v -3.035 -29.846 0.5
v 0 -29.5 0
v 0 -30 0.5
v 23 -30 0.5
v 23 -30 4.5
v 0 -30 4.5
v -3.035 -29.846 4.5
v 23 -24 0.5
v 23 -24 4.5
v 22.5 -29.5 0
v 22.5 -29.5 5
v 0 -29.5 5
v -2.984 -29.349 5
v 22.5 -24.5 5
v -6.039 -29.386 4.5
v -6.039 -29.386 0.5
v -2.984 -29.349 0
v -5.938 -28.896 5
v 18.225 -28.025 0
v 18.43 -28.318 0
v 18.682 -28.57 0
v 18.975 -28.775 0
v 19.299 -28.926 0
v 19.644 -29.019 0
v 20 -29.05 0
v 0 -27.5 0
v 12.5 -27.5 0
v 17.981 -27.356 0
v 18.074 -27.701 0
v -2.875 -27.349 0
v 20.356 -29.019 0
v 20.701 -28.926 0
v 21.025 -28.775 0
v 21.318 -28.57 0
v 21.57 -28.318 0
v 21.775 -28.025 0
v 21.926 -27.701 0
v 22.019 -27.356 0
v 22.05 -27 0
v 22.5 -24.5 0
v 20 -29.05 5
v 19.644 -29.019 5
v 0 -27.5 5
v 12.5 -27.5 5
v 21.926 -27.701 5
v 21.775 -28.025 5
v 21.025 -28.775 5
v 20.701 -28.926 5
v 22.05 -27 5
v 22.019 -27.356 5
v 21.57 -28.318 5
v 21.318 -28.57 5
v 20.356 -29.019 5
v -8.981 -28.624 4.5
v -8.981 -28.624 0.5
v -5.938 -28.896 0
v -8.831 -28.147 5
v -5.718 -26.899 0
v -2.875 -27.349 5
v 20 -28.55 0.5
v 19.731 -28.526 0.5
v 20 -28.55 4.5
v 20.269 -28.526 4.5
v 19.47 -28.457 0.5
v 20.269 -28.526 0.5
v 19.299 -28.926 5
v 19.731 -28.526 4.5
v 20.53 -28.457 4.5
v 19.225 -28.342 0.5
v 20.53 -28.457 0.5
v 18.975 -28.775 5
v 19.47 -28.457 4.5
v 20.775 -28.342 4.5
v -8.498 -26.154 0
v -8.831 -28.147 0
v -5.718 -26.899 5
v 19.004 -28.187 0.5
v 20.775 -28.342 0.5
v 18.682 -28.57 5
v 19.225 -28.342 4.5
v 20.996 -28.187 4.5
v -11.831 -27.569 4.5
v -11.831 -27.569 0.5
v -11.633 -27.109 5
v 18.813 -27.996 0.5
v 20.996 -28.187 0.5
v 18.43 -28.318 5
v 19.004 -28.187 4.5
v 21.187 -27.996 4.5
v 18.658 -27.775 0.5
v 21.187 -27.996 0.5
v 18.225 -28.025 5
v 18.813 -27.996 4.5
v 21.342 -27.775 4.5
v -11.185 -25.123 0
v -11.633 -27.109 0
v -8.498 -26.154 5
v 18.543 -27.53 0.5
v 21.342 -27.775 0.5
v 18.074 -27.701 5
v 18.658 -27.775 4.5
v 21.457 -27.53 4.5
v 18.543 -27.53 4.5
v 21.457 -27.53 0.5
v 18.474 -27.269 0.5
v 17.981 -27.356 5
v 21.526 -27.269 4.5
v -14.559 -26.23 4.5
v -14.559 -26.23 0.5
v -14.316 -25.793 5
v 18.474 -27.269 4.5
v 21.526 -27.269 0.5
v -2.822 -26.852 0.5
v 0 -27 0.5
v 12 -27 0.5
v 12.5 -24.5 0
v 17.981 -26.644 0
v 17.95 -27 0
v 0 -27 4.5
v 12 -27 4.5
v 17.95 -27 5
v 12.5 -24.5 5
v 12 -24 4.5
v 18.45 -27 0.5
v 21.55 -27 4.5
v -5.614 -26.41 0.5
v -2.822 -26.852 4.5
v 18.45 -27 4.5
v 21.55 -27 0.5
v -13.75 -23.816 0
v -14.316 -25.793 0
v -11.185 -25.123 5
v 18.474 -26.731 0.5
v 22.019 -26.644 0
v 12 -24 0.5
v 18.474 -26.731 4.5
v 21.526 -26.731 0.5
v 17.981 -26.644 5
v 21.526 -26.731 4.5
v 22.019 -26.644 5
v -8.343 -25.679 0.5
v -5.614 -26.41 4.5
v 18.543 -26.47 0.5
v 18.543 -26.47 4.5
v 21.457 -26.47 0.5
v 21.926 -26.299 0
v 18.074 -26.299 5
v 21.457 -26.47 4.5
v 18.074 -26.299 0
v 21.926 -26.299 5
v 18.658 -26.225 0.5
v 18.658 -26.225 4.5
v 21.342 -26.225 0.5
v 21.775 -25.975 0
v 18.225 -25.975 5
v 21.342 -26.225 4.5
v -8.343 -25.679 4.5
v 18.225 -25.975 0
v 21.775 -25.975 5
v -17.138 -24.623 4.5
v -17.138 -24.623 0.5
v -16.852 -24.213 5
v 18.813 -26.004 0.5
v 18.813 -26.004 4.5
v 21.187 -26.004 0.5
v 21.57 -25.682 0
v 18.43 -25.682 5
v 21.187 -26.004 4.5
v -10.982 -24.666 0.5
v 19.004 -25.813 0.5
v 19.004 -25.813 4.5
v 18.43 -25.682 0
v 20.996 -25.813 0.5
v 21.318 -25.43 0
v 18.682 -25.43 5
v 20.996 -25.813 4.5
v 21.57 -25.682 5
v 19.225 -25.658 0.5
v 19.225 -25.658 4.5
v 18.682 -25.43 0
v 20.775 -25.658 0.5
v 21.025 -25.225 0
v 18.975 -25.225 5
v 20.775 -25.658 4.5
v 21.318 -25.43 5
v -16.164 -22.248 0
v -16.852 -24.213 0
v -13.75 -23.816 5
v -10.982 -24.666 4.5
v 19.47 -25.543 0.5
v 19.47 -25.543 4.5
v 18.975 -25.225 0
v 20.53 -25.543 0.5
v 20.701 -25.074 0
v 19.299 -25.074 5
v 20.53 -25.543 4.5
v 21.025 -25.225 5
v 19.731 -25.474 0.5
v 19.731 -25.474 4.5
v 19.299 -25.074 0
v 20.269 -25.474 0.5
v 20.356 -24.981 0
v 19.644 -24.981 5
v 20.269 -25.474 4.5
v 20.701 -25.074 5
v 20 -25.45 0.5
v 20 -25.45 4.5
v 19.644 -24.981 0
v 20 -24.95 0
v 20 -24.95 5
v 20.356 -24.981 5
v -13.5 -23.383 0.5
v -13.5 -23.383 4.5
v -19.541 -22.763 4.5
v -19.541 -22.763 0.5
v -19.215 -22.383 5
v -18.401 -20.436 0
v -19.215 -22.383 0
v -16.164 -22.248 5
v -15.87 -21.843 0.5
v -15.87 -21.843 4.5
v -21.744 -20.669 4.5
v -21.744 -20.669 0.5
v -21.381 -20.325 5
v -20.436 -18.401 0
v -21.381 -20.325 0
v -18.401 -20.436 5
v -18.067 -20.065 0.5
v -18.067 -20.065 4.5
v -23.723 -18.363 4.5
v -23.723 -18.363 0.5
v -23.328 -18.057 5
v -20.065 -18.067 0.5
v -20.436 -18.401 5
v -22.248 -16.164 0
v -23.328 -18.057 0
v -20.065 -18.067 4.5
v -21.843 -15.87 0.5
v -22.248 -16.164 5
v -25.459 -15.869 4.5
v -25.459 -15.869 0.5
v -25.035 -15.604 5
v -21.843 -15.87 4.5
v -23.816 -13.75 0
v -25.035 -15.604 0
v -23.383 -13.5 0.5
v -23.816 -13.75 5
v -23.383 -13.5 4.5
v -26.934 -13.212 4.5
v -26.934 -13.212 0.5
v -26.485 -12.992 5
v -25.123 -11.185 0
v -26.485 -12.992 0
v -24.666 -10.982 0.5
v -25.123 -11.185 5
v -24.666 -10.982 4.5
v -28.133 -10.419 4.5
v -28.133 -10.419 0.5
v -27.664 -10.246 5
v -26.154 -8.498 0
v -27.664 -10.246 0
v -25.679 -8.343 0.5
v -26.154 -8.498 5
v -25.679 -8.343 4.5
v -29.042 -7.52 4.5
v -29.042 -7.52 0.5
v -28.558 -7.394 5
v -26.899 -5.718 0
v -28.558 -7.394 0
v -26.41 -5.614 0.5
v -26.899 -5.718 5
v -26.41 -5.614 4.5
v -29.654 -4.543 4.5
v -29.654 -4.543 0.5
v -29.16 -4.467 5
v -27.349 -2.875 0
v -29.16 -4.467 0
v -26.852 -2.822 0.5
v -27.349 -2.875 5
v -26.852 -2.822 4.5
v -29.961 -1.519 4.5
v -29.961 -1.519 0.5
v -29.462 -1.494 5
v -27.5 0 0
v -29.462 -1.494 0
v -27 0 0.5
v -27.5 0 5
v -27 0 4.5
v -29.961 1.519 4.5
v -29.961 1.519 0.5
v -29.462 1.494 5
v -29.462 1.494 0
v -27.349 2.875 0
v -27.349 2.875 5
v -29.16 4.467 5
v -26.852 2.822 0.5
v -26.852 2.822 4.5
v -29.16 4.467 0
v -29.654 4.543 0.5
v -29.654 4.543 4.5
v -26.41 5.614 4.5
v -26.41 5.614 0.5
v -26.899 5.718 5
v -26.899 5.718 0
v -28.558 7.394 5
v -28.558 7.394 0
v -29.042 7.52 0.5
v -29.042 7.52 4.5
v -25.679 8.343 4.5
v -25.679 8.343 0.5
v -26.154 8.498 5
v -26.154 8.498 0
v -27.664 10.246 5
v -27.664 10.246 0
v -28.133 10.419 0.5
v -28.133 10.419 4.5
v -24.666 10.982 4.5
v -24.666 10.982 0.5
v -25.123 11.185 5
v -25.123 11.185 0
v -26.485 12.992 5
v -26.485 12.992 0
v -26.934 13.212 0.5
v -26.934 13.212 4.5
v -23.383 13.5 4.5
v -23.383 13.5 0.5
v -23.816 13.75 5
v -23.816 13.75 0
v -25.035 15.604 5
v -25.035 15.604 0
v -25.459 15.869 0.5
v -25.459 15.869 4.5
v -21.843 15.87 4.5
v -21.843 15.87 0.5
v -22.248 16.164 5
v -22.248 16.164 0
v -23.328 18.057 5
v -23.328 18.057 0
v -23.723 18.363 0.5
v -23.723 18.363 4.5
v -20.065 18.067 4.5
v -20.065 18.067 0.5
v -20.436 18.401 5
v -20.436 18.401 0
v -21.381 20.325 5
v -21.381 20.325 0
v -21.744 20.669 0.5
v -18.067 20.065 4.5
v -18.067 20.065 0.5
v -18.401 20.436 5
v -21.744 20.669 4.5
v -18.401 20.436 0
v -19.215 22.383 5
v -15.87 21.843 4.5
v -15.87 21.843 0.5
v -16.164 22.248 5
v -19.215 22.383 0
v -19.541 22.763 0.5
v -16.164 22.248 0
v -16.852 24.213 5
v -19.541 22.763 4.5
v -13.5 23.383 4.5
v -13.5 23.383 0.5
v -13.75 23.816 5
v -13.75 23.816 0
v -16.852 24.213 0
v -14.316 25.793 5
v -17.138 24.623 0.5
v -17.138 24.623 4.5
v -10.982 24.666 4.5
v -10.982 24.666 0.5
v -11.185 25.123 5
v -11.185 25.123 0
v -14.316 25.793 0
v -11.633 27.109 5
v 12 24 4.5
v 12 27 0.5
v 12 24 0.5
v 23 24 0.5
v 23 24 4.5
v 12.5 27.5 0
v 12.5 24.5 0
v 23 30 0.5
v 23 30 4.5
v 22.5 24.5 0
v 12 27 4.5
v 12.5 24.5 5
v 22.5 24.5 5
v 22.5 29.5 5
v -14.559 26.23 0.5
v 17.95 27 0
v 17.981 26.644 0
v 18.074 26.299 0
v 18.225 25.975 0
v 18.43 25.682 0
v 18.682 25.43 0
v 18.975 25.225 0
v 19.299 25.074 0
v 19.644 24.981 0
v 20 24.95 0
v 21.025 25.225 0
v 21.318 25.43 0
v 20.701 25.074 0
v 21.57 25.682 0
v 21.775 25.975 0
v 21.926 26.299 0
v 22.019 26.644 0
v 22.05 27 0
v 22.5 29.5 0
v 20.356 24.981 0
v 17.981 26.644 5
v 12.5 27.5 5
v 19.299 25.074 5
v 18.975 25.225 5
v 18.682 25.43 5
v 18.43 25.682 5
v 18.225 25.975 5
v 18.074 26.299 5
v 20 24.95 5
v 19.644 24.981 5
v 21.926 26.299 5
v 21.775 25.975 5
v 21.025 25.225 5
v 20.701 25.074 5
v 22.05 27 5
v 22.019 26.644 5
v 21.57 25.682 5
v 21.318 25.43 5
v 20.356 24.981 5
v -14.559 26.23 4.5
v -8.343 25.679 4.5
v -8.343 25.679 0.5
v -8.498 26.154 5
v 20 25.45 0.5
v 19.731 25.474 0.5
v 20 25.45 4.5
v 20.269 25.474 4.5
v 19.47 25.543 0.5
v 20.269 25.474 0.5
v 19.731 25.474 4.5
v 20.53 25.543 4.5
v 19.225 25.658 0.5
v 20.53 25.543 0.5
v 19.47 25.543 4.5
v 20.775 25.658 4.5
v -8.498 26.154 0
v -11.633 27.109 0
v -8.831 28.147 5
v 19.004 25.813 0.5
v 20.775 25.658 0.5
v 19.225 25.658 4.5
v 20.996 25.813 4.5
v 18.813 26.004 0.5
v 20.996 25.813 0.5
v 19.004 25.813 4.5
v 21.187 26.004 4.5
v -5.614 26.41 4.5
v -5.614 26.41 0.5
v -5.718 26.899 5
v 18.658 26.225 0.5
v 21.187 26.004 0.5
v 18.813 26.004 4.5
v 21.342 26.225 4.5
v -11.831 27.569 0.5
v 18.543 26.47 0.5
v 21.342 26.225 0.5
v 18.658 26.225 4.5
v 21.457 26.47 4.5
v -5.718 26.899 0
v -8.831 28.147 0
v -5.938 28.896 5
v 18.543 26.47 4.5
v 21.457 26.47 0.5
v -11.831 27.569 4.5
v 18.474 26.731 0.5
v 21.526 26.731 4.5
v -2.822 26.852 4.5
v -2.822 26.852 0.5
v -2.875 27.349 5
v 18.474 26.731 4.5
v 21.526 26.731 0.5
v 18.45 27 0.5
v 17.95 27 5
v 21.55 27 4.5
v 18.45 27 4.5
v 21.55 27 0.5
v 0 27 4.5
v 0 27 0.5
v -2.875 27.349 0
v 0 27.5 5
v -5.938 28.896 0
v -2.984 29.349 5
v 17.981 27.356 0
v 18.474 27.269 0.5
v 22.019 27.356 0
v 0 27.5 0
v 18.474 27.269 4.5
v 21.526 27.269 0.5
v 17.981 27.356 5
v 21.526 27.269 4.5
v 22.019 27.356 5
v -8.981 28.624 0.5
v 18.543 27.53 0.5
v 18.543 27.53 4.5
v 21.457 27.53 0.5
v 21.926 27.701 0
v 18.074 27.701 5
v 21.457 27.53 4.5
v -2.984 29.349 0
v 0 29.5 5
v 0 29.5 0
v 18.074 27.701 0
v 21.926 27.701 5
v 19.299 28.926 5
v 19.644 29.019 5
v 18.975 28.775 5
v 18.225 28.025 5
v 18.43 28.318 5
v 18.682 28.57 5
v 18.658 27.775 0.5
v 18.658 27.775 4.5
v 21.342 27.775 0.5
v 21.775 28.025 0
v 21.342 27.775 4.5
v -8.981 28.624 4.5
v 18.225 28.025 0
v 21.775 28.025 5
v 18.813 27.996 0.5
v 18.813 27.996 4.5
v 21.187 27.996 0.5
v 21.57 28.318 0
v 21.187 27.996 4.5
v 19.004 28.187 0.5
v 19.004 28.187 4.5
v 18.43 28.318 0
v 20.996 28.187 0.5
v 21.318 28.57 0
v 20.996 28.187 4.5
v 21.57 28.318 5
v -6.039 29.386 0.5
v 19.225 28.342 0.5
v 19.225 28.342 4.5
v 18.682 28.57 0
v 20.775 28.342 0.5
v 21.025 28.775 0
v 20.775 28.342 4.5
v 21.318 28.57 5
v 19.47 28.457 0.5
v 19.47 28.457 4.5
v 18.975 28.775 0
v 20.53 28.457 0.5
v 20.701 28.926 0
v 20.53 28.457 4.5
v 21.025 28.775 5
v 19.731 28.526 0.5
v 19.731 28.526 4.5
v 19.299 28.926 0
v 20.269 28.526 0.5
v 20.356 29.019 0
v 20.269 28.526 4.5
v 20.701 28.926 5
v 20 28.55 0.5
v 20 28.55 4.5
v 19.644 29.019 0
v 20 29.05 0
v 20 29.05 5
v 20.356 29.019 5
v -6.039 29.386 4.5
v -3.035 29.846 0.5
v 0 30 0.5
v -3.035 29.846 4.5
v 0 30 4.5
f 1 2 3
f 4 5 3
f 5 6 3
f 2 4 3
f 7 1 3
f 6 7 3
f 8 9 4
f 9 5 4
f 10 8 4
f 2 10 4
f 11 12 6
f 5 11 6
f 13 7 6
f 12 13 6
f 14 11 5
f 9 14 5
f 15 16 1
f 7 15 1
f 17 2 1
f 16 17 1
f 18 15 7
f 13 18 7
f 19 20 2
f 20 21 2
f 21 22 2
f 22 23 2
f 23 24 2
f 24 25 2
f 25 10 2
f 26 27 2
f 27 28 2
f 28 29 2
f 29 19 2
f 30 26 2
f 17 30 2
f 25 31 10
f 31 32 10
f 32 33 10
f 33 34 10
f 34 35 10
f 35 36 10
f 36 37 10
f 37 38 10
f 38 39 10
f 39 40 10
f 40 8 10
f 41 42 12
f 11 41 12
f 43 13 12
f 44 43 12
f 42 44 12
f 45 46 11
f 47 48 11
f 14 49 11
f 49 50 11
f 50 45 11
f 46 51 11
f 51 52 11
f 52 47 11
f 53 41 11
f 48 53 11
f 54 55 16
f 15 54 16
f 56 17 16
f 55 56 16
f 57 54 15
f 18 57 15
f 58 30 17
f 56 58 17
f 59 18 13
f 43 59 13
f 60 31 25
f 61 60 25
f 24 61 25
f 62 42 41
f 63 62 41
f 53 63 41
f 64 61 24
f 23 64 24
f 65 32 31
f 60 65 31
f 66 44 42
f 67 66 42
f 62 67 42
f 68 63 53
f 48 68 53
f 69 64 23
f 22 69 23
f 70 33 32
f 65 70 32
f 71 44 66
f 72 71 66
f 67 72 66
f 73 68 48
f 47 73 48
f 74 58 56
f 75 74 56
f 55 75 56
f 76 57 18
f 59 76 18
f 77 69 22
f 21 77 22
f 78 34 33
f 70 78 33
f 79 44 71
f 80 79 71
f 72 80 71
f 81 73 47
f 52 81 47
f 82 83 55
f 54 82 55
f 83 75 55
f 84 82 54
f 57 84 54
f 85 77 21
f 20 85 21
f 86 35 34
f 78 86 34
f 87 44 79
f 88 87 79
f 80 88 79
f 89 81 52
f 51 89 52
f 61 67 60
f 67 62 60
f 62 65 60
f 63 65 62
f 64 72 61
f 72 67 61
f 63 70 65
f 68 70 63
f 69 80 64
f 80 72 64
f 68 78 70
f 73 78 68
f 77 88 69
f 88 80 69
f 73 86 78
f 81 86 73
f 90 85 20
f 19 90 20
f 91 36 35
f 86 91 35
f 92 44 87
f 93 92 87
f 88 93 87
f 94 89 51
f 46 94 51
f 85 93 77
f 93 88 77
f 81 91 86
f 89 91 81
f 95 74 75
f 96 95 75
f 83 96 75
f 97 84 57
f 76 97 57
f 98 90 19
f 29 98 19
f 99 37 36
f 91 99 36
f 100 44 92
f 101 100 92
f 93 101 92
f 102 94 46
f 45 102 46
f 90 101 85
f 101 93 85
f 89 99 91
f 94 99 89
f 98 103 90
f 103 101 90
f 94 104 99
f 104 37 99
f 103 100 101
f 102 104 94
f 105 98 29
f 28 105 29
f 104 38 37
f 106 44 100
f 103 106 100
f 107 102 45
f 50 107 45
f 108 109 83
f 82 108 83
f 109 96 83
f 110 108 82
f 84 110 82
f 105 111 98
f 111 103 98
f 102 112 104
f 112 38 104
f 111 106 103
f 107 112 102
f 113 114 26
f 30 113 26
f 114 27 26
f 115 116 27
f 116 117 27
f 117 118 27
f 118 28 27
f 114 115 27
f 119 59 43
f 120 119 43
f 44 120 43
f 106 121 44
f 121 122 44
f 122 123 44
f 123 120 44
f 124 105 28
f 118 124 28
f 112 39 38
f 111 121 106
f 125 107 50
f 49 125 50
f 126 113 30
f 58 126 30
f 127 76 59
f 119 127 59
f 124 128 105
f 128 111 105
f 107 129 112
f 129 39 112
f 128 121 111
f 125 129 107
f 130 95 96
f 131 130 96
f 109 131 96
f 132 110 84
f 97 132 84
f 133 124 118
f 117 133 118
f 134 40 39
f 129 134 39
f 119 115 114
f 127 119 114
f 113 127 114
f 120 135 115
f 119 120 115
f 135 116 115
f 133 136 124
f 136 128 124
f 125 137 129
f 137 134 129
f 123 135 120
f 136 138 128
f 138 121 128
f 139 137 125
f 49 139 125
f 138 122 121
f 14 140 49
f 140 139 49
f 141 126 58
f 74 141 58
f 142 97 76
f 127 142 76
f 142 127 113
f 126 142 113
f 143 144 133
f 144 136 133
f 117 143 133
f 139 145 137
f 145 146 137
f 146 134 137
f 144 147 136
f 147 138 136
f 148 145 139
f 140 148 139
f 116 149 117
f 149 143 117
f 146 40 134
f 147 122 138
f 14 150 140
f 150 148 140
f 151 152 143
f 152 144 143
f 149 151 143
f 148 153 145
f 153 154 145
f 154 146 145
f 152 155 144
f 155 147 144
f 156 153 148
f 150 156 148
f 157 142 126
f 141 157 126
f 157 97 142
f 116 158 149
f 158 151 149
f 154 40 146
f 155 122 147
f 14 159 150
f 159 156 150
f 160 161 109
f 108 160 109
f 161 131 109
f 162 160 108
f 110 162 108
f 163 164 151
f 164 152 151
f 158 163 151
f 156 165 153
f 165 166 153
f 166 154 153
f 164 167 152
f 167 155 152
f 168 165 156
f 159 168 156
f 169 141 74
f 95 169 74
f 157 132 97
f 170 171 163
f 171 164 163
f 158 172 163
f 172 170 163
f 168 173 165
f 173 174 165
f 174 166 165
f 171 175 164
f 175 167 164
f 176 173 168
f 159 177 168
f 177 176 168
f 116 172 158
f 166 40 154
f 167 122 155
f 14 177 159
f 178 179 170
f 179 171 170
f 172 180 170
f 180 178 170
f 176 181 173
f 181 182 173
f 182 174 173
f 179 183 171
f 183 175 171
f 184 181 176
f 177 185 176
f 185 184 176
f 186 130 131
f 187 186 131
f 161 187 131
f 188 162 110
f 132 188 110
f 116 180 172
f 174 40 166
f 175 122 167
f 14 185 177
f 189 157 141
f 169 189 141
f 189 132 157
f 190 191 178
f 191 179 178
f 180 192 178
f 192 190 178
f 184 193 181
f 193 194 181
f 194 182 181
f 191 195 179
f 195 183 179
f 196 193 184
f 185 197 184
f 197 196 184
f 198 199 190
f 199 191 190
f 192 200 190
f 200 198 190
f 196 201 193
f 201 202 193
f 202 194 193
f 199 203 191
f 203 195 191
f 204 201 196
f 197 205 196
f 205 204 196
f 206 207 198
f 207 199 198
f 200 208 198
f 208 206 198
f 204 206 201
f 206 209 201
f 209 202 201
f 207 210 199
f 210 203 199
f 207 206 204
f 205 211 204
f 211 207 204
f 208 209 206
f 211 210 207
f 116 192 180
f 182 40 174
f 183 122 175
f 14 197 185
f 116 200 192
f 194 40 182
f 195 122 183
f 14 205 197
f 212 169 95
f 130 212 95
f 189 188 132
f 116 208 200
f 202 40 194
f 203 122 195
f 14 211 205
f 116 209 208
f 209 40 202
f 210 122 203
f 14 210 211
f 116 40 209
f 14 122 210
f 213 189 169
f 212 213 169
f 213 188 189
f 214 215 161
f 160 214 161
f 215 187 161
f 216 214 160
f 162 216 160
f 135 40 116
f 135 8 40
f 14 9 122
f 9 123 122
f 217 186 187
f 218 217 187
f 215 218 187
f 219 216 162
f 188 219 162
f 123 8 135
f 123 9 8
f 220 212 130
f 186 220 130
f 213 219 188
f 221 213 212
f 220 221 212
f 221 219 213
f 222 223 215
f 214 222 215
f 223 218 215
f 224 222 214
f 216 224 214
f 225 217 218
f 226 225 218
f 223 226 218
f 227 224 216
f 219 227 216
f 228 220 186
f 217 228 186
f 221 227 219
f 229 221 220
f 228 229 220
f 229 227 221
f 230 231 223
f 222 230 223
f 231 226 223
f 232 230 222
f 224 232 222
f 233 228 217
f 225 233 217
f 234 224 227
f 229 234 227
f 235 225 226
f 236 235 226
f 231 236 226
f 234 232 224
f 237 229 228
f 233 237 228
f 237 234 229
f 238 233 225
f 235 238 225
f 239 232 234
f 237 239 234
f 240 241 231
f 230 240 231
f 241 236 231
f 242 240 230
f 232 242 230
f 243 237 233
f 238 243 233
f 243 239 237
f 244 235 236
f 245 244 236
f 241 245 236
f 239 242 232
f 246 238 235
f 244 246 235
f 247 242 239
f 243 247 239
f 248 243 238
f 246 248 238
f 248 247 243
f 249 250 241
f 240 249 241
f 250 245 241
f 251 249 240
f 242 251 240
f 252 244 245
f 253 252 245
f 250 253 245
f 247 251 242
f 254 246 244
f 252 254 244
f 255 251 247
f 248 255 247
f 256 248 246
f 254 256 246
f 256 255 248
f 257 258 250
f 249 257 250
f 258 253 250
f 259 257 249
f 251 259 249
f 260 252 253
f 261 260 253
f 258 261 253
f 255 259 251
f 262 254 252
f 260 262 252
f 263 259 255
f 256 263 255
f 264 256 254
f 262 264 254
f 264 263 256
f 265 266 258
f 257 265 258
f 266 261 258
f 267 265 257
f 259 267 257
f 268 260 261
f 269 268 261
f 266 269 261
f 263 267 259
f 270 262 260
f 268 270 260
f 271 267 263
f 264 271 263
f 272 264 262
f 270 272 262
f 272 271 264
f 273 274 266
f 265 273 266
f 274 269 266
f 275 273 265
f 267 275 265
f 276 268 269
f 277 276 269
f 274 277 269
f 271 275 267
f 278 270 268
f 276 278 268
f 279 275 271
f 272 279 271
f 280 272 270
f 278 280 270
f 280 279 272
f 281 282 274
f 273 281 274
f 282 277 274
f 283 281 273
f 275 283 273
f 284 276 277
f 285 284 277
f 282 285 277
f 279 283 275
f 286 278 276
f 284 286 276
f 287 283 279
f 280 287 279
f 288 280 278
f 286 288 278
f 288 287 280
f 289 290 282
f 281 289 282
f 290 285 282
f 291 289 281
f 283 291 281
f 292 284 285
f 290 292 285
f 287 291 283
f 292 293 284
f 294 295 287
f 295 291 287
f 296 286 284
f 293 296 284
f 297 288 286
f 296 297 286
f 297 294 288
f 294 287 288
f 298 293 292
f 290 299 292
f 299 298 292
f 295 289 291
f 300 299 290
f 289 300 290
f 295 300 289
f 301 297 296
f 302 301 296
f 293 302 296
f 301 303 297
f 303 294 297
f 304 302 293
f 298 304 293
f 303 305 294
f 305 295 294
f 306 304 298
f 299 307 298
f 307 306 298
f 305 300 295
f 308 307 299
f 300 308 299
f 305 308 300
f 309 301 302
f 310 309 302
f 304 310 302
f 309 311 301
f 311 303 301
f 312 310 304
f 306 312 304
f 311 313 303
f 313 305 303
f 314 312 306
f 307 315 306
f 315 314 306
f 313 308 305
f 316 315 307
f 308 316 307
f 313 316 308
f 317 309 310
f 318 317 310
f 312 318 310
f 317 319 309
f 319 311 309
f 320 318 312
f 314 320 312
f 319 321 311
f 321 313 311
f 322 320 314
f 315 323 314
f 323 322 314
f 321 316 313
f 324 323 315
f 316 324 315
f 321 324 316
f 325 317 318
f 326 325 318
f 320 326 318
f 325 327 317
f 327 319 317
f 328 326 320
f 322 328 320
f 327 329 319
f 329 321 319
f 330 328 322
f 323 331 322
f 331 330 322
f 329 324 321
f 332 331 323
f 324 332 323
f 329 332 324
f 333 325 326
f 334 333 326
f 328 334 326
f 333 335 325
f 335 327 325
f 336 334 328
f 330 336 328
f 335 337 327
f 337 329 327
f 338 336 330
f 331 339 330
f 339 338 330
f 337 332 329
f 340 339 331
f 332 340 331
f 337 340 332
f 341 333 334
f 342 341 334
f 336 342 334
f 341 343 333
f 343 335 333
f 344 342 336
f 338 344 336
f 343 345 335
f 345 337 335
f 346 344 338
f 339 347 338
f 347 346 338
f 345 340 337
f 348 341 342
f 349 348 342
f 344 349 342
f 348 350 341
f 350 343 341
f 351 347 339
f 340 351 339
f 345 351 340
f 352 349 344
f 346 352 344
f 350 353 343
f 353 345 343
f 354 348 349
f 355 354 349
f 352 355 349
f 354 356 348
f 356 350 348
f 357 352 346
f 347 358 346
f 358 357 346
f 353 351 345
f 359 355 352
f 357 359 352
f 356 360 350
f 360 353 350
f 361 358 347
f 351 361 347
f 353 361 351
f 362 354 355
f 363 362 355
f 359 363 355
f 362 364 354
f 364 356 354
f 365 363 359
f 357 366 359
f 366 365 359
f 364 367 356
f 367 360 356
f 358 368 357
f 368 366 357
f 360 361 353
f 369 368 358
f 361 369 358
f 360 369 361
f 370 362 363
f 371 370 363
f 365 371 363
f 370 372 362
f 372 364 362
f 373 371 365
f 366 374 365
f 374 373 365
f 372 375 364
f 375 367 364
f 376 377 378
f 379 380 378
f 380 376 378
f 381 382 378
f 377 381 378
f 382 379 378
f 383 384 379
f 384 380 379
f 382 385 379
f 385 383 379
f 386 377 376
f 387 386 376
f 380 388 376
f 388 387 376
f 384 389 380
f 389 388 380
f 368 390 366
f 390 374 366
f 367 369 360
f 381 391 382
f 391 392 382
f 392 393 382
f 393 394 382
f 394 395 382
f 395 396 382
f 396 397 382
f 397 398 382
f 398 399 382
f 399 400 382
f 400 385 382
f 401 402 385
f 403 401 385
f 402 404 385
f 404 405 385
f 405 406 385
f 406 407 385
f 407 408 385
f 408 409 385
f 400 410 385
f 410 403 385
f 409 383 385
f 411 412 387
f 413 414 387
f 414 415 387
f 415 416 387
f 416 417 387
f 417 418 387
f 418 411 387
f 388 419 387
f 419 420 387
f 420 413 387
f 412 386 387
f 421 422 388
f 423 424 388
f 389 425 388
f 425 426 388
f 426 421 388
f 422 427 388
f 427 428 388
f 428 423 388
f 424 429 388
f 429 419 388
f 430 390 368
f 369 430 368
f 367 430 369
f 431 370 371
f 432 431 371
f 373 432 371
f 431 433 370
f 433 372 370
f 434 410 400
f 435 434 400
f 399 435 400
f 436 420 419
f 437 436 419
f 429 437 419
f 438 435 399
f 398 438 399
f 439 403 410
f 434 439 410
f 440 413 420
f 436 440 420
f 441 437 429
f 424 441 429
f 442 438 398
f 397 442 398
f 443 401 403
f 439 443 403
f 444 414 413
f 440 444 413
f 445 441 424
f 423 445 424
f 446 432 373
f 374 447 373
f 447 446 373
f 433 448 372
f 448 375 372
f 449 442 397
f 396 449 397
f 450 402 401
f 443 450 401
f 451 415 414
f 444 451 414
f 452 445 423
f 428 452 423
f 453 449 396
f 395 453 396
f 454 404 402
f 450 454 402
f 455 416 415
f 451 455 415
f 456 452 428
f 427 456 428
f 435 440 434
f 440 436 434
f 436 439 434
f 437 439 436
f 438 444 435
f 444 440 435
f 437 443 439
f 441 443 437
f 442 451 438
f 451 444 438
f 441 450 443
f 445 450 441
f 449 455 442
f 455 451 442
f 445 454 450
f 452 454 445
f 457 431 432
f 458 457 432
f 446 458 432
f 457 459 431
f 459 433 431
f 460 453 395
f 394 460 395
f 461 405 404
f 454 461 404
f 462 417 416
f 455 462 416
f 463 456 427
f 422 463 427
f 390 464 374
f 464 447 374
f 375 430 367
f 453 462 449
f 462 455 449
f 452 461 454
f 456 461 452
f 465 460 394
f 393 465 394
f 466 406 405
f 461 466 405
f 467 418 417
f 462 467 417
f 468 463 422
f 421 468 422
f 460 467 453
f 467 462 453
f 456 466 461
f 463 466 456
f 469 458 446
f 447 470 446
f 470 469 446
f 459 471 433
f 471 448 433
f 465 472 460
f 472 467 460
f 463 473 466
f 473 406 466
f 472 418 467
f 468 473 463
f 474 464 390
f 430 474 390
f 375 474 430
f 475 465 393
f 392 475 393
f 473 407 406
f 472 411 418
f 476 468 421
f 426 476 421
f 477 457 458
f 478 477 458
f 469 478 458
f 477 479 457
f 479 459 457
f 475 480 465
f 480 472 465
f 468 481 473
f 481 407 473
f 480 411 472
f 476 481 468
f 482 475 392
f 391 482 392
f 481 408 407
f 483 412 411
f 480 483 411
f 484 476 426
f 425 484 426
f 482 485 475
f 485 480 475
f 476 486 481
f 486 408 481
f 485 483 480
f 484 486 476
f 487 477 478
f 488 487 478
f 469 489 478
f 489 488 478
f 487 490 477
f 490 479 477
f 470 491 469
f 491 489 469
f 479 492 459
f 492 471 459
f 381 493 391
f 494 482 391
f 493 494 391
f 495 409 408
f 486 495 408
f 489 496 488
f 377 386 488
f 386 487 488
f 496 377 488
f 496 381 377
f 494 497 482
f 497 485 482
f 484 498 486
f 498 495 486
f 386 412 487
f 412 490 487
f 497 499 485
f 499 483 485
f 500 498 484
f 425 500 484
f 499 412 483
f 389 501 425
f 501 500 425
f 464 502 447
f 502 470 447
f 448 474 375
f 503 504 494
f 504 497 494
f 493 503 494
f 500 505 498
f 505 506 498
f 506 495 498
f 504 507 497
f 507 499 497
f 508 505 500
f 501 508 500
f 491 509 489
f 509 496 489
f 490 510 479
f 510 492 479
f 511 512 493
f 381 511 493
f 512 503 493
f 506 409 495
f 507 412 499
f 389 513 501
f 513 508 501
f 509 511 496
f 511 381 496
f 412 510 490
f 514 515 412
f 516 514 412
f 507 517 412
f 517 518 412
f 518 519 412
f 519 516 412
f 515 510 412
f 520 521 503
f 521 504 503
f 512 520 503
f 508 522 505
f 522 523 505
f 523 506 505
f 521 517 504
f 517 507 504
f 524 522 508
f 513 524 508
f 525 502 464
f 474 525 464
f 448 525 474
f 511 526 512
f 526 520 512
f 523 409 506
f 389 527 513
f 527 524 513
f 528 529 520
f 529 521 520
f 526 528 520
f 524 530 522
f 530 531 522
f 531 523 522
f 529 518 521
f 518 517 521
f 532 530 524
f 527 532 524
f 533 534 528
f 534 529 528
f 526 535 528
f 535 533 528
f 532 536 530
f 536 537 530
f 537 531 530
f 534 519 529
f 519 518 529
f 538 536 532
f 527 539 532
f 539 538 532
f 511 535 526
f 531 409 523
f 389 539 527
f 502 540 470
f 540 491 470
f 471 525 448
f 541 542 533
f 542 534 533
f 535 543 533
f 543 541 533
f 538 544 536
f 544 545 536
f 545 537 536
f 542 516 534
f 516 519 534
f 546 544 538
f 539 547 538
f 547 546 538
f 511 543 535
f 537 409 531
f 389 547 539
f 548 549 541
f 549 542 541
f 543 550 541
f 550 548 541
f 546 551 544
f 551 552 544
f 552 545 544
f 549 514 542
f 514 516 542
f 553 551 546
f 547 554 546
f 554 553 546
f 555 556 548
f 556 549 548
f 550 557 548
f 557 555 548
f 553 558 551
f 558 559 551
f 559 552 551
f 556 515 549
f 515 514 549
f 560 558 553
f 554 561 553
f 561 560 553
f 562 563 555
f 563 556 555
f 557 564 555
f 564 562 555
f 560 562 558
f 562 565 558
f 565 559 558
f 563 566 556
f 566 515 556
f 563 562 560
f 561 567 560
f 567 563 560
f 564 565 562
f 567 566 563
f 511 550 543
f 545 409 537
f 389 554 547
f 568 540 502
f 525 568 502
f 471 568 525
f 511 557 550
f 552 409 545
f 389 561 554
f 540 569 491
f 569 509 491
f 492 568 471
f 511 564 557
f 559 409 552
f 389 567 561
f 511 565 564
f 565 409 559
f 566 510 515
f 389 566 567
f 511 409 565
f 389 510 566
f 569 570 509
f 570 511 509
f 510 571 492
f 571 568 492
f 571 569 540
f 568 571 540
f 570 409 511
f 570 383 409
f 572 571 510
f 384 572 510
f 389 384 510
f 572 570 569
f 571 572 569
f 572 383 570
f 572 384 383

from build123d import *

# Parameters (mm, degrees)
EXTRUDE_1_DEPTH     = 5
SKETCH_3_W          = 5
SKETCH_3_H          = 6
EXTRUDE_2_DEPTH     = 5
SKETCH_2_R          = 1.55
CUT_EXTRUDE_1_DEPTH = 43.720018727
CHAMFER_1_SIZE      = 0.5


with BuildPart() as part:
    # ｽｹｯﾁ1 → ﾎﾞｽ - 押し出し1 (new body)
    with BuildSketch(Plane.XY):
        with BuildLine():
            Line((0, 30), (18, 30))
            Line((18, 30), (18, 24))
            Line((18, 24), (12, 24))
            Line((12, 24), (12, 27))
            Line((12, 27), (0, 27))
            ThreePointArc((0, 27), (-27, 0), (0, -27))
            Line((0, -27), (12, -27))
            Line((12, -27), (12, -24))
            Line((12, -24), (18, -24))
            Line((18, -24), (18, -30))
            Line((18, -30), (0, -30))
            ThreePointArc((0, -30), (-30, 0), (0, 30))
        make_face()
    extrude(amount=EXTRUDE_1_DEPTH)

    # ｽｹｯﾁ3 → ﾎﾞｽ - 押し出し2 (add)
    with BuildSketch(Plane.XY.offset(5)):
        with Locations((20.5, -27)):
            Rectangle(SKETCH_3_W, SKETCH_3_H)
        with Locations((20.5, 27)):
            Rectangle(SKETCH_3_W, SKETCH_3_H)
    extrude(amount=-EXTRUDE_2_DEPTH)

    # ｽｹｯﾁ2 → ｶｯﾄ - 押し出し1 (cut, through all)
    with BuildSketch(Plane.XY.offset(5)):
        with Locations((20, -27)):
            Circle(SKETCH_2_R)
        with Locations((20, 27)):
            Circle(SKETCH_2_R)
    extrude(amount=-CUT_EXTRUDE_1_DEPTH, mode=Mode.SUBTRACT)

    # 面取り1
    chamfer_1_edges = [part.edges().sort_by_distance(p)[0] for p in [
        (11.5, 30, 0),
        (17.5, 24, 0),
        (12, 25.5, 0),
        (6, 27, 0),
        (-27, 0, 0),
        (17.5, -24, 5),
        (6, -27, 0),
        (12, -25.5, 0),
        (17.5, -24, 0),
        (11.5, -30, 0),
        (-30, 0, 0),
        (12, -25.5, 5),
        (6, -27, 5),
        (-27, 0, 5),
        (6, 27, 5),
        (12, 25.5, 5),
        (17.5, 24, 5),
        (23, -27, 5),
        (23, -27, 0),
        (11.5, 30, 5),
        (-30, 0, 5),
        (23, 27, 5),
        (23, 27, 0),
        (18.45, -27, 0),
        (18.45, -27, 5),
        (18.45, 27, 0),
        (18.45, 27, 5),
        (11.5, -30, 5),
    ]]
    chamfer(chamfer_1_edges, length=CHAMFER_1_SIZE)


solid = part.part
